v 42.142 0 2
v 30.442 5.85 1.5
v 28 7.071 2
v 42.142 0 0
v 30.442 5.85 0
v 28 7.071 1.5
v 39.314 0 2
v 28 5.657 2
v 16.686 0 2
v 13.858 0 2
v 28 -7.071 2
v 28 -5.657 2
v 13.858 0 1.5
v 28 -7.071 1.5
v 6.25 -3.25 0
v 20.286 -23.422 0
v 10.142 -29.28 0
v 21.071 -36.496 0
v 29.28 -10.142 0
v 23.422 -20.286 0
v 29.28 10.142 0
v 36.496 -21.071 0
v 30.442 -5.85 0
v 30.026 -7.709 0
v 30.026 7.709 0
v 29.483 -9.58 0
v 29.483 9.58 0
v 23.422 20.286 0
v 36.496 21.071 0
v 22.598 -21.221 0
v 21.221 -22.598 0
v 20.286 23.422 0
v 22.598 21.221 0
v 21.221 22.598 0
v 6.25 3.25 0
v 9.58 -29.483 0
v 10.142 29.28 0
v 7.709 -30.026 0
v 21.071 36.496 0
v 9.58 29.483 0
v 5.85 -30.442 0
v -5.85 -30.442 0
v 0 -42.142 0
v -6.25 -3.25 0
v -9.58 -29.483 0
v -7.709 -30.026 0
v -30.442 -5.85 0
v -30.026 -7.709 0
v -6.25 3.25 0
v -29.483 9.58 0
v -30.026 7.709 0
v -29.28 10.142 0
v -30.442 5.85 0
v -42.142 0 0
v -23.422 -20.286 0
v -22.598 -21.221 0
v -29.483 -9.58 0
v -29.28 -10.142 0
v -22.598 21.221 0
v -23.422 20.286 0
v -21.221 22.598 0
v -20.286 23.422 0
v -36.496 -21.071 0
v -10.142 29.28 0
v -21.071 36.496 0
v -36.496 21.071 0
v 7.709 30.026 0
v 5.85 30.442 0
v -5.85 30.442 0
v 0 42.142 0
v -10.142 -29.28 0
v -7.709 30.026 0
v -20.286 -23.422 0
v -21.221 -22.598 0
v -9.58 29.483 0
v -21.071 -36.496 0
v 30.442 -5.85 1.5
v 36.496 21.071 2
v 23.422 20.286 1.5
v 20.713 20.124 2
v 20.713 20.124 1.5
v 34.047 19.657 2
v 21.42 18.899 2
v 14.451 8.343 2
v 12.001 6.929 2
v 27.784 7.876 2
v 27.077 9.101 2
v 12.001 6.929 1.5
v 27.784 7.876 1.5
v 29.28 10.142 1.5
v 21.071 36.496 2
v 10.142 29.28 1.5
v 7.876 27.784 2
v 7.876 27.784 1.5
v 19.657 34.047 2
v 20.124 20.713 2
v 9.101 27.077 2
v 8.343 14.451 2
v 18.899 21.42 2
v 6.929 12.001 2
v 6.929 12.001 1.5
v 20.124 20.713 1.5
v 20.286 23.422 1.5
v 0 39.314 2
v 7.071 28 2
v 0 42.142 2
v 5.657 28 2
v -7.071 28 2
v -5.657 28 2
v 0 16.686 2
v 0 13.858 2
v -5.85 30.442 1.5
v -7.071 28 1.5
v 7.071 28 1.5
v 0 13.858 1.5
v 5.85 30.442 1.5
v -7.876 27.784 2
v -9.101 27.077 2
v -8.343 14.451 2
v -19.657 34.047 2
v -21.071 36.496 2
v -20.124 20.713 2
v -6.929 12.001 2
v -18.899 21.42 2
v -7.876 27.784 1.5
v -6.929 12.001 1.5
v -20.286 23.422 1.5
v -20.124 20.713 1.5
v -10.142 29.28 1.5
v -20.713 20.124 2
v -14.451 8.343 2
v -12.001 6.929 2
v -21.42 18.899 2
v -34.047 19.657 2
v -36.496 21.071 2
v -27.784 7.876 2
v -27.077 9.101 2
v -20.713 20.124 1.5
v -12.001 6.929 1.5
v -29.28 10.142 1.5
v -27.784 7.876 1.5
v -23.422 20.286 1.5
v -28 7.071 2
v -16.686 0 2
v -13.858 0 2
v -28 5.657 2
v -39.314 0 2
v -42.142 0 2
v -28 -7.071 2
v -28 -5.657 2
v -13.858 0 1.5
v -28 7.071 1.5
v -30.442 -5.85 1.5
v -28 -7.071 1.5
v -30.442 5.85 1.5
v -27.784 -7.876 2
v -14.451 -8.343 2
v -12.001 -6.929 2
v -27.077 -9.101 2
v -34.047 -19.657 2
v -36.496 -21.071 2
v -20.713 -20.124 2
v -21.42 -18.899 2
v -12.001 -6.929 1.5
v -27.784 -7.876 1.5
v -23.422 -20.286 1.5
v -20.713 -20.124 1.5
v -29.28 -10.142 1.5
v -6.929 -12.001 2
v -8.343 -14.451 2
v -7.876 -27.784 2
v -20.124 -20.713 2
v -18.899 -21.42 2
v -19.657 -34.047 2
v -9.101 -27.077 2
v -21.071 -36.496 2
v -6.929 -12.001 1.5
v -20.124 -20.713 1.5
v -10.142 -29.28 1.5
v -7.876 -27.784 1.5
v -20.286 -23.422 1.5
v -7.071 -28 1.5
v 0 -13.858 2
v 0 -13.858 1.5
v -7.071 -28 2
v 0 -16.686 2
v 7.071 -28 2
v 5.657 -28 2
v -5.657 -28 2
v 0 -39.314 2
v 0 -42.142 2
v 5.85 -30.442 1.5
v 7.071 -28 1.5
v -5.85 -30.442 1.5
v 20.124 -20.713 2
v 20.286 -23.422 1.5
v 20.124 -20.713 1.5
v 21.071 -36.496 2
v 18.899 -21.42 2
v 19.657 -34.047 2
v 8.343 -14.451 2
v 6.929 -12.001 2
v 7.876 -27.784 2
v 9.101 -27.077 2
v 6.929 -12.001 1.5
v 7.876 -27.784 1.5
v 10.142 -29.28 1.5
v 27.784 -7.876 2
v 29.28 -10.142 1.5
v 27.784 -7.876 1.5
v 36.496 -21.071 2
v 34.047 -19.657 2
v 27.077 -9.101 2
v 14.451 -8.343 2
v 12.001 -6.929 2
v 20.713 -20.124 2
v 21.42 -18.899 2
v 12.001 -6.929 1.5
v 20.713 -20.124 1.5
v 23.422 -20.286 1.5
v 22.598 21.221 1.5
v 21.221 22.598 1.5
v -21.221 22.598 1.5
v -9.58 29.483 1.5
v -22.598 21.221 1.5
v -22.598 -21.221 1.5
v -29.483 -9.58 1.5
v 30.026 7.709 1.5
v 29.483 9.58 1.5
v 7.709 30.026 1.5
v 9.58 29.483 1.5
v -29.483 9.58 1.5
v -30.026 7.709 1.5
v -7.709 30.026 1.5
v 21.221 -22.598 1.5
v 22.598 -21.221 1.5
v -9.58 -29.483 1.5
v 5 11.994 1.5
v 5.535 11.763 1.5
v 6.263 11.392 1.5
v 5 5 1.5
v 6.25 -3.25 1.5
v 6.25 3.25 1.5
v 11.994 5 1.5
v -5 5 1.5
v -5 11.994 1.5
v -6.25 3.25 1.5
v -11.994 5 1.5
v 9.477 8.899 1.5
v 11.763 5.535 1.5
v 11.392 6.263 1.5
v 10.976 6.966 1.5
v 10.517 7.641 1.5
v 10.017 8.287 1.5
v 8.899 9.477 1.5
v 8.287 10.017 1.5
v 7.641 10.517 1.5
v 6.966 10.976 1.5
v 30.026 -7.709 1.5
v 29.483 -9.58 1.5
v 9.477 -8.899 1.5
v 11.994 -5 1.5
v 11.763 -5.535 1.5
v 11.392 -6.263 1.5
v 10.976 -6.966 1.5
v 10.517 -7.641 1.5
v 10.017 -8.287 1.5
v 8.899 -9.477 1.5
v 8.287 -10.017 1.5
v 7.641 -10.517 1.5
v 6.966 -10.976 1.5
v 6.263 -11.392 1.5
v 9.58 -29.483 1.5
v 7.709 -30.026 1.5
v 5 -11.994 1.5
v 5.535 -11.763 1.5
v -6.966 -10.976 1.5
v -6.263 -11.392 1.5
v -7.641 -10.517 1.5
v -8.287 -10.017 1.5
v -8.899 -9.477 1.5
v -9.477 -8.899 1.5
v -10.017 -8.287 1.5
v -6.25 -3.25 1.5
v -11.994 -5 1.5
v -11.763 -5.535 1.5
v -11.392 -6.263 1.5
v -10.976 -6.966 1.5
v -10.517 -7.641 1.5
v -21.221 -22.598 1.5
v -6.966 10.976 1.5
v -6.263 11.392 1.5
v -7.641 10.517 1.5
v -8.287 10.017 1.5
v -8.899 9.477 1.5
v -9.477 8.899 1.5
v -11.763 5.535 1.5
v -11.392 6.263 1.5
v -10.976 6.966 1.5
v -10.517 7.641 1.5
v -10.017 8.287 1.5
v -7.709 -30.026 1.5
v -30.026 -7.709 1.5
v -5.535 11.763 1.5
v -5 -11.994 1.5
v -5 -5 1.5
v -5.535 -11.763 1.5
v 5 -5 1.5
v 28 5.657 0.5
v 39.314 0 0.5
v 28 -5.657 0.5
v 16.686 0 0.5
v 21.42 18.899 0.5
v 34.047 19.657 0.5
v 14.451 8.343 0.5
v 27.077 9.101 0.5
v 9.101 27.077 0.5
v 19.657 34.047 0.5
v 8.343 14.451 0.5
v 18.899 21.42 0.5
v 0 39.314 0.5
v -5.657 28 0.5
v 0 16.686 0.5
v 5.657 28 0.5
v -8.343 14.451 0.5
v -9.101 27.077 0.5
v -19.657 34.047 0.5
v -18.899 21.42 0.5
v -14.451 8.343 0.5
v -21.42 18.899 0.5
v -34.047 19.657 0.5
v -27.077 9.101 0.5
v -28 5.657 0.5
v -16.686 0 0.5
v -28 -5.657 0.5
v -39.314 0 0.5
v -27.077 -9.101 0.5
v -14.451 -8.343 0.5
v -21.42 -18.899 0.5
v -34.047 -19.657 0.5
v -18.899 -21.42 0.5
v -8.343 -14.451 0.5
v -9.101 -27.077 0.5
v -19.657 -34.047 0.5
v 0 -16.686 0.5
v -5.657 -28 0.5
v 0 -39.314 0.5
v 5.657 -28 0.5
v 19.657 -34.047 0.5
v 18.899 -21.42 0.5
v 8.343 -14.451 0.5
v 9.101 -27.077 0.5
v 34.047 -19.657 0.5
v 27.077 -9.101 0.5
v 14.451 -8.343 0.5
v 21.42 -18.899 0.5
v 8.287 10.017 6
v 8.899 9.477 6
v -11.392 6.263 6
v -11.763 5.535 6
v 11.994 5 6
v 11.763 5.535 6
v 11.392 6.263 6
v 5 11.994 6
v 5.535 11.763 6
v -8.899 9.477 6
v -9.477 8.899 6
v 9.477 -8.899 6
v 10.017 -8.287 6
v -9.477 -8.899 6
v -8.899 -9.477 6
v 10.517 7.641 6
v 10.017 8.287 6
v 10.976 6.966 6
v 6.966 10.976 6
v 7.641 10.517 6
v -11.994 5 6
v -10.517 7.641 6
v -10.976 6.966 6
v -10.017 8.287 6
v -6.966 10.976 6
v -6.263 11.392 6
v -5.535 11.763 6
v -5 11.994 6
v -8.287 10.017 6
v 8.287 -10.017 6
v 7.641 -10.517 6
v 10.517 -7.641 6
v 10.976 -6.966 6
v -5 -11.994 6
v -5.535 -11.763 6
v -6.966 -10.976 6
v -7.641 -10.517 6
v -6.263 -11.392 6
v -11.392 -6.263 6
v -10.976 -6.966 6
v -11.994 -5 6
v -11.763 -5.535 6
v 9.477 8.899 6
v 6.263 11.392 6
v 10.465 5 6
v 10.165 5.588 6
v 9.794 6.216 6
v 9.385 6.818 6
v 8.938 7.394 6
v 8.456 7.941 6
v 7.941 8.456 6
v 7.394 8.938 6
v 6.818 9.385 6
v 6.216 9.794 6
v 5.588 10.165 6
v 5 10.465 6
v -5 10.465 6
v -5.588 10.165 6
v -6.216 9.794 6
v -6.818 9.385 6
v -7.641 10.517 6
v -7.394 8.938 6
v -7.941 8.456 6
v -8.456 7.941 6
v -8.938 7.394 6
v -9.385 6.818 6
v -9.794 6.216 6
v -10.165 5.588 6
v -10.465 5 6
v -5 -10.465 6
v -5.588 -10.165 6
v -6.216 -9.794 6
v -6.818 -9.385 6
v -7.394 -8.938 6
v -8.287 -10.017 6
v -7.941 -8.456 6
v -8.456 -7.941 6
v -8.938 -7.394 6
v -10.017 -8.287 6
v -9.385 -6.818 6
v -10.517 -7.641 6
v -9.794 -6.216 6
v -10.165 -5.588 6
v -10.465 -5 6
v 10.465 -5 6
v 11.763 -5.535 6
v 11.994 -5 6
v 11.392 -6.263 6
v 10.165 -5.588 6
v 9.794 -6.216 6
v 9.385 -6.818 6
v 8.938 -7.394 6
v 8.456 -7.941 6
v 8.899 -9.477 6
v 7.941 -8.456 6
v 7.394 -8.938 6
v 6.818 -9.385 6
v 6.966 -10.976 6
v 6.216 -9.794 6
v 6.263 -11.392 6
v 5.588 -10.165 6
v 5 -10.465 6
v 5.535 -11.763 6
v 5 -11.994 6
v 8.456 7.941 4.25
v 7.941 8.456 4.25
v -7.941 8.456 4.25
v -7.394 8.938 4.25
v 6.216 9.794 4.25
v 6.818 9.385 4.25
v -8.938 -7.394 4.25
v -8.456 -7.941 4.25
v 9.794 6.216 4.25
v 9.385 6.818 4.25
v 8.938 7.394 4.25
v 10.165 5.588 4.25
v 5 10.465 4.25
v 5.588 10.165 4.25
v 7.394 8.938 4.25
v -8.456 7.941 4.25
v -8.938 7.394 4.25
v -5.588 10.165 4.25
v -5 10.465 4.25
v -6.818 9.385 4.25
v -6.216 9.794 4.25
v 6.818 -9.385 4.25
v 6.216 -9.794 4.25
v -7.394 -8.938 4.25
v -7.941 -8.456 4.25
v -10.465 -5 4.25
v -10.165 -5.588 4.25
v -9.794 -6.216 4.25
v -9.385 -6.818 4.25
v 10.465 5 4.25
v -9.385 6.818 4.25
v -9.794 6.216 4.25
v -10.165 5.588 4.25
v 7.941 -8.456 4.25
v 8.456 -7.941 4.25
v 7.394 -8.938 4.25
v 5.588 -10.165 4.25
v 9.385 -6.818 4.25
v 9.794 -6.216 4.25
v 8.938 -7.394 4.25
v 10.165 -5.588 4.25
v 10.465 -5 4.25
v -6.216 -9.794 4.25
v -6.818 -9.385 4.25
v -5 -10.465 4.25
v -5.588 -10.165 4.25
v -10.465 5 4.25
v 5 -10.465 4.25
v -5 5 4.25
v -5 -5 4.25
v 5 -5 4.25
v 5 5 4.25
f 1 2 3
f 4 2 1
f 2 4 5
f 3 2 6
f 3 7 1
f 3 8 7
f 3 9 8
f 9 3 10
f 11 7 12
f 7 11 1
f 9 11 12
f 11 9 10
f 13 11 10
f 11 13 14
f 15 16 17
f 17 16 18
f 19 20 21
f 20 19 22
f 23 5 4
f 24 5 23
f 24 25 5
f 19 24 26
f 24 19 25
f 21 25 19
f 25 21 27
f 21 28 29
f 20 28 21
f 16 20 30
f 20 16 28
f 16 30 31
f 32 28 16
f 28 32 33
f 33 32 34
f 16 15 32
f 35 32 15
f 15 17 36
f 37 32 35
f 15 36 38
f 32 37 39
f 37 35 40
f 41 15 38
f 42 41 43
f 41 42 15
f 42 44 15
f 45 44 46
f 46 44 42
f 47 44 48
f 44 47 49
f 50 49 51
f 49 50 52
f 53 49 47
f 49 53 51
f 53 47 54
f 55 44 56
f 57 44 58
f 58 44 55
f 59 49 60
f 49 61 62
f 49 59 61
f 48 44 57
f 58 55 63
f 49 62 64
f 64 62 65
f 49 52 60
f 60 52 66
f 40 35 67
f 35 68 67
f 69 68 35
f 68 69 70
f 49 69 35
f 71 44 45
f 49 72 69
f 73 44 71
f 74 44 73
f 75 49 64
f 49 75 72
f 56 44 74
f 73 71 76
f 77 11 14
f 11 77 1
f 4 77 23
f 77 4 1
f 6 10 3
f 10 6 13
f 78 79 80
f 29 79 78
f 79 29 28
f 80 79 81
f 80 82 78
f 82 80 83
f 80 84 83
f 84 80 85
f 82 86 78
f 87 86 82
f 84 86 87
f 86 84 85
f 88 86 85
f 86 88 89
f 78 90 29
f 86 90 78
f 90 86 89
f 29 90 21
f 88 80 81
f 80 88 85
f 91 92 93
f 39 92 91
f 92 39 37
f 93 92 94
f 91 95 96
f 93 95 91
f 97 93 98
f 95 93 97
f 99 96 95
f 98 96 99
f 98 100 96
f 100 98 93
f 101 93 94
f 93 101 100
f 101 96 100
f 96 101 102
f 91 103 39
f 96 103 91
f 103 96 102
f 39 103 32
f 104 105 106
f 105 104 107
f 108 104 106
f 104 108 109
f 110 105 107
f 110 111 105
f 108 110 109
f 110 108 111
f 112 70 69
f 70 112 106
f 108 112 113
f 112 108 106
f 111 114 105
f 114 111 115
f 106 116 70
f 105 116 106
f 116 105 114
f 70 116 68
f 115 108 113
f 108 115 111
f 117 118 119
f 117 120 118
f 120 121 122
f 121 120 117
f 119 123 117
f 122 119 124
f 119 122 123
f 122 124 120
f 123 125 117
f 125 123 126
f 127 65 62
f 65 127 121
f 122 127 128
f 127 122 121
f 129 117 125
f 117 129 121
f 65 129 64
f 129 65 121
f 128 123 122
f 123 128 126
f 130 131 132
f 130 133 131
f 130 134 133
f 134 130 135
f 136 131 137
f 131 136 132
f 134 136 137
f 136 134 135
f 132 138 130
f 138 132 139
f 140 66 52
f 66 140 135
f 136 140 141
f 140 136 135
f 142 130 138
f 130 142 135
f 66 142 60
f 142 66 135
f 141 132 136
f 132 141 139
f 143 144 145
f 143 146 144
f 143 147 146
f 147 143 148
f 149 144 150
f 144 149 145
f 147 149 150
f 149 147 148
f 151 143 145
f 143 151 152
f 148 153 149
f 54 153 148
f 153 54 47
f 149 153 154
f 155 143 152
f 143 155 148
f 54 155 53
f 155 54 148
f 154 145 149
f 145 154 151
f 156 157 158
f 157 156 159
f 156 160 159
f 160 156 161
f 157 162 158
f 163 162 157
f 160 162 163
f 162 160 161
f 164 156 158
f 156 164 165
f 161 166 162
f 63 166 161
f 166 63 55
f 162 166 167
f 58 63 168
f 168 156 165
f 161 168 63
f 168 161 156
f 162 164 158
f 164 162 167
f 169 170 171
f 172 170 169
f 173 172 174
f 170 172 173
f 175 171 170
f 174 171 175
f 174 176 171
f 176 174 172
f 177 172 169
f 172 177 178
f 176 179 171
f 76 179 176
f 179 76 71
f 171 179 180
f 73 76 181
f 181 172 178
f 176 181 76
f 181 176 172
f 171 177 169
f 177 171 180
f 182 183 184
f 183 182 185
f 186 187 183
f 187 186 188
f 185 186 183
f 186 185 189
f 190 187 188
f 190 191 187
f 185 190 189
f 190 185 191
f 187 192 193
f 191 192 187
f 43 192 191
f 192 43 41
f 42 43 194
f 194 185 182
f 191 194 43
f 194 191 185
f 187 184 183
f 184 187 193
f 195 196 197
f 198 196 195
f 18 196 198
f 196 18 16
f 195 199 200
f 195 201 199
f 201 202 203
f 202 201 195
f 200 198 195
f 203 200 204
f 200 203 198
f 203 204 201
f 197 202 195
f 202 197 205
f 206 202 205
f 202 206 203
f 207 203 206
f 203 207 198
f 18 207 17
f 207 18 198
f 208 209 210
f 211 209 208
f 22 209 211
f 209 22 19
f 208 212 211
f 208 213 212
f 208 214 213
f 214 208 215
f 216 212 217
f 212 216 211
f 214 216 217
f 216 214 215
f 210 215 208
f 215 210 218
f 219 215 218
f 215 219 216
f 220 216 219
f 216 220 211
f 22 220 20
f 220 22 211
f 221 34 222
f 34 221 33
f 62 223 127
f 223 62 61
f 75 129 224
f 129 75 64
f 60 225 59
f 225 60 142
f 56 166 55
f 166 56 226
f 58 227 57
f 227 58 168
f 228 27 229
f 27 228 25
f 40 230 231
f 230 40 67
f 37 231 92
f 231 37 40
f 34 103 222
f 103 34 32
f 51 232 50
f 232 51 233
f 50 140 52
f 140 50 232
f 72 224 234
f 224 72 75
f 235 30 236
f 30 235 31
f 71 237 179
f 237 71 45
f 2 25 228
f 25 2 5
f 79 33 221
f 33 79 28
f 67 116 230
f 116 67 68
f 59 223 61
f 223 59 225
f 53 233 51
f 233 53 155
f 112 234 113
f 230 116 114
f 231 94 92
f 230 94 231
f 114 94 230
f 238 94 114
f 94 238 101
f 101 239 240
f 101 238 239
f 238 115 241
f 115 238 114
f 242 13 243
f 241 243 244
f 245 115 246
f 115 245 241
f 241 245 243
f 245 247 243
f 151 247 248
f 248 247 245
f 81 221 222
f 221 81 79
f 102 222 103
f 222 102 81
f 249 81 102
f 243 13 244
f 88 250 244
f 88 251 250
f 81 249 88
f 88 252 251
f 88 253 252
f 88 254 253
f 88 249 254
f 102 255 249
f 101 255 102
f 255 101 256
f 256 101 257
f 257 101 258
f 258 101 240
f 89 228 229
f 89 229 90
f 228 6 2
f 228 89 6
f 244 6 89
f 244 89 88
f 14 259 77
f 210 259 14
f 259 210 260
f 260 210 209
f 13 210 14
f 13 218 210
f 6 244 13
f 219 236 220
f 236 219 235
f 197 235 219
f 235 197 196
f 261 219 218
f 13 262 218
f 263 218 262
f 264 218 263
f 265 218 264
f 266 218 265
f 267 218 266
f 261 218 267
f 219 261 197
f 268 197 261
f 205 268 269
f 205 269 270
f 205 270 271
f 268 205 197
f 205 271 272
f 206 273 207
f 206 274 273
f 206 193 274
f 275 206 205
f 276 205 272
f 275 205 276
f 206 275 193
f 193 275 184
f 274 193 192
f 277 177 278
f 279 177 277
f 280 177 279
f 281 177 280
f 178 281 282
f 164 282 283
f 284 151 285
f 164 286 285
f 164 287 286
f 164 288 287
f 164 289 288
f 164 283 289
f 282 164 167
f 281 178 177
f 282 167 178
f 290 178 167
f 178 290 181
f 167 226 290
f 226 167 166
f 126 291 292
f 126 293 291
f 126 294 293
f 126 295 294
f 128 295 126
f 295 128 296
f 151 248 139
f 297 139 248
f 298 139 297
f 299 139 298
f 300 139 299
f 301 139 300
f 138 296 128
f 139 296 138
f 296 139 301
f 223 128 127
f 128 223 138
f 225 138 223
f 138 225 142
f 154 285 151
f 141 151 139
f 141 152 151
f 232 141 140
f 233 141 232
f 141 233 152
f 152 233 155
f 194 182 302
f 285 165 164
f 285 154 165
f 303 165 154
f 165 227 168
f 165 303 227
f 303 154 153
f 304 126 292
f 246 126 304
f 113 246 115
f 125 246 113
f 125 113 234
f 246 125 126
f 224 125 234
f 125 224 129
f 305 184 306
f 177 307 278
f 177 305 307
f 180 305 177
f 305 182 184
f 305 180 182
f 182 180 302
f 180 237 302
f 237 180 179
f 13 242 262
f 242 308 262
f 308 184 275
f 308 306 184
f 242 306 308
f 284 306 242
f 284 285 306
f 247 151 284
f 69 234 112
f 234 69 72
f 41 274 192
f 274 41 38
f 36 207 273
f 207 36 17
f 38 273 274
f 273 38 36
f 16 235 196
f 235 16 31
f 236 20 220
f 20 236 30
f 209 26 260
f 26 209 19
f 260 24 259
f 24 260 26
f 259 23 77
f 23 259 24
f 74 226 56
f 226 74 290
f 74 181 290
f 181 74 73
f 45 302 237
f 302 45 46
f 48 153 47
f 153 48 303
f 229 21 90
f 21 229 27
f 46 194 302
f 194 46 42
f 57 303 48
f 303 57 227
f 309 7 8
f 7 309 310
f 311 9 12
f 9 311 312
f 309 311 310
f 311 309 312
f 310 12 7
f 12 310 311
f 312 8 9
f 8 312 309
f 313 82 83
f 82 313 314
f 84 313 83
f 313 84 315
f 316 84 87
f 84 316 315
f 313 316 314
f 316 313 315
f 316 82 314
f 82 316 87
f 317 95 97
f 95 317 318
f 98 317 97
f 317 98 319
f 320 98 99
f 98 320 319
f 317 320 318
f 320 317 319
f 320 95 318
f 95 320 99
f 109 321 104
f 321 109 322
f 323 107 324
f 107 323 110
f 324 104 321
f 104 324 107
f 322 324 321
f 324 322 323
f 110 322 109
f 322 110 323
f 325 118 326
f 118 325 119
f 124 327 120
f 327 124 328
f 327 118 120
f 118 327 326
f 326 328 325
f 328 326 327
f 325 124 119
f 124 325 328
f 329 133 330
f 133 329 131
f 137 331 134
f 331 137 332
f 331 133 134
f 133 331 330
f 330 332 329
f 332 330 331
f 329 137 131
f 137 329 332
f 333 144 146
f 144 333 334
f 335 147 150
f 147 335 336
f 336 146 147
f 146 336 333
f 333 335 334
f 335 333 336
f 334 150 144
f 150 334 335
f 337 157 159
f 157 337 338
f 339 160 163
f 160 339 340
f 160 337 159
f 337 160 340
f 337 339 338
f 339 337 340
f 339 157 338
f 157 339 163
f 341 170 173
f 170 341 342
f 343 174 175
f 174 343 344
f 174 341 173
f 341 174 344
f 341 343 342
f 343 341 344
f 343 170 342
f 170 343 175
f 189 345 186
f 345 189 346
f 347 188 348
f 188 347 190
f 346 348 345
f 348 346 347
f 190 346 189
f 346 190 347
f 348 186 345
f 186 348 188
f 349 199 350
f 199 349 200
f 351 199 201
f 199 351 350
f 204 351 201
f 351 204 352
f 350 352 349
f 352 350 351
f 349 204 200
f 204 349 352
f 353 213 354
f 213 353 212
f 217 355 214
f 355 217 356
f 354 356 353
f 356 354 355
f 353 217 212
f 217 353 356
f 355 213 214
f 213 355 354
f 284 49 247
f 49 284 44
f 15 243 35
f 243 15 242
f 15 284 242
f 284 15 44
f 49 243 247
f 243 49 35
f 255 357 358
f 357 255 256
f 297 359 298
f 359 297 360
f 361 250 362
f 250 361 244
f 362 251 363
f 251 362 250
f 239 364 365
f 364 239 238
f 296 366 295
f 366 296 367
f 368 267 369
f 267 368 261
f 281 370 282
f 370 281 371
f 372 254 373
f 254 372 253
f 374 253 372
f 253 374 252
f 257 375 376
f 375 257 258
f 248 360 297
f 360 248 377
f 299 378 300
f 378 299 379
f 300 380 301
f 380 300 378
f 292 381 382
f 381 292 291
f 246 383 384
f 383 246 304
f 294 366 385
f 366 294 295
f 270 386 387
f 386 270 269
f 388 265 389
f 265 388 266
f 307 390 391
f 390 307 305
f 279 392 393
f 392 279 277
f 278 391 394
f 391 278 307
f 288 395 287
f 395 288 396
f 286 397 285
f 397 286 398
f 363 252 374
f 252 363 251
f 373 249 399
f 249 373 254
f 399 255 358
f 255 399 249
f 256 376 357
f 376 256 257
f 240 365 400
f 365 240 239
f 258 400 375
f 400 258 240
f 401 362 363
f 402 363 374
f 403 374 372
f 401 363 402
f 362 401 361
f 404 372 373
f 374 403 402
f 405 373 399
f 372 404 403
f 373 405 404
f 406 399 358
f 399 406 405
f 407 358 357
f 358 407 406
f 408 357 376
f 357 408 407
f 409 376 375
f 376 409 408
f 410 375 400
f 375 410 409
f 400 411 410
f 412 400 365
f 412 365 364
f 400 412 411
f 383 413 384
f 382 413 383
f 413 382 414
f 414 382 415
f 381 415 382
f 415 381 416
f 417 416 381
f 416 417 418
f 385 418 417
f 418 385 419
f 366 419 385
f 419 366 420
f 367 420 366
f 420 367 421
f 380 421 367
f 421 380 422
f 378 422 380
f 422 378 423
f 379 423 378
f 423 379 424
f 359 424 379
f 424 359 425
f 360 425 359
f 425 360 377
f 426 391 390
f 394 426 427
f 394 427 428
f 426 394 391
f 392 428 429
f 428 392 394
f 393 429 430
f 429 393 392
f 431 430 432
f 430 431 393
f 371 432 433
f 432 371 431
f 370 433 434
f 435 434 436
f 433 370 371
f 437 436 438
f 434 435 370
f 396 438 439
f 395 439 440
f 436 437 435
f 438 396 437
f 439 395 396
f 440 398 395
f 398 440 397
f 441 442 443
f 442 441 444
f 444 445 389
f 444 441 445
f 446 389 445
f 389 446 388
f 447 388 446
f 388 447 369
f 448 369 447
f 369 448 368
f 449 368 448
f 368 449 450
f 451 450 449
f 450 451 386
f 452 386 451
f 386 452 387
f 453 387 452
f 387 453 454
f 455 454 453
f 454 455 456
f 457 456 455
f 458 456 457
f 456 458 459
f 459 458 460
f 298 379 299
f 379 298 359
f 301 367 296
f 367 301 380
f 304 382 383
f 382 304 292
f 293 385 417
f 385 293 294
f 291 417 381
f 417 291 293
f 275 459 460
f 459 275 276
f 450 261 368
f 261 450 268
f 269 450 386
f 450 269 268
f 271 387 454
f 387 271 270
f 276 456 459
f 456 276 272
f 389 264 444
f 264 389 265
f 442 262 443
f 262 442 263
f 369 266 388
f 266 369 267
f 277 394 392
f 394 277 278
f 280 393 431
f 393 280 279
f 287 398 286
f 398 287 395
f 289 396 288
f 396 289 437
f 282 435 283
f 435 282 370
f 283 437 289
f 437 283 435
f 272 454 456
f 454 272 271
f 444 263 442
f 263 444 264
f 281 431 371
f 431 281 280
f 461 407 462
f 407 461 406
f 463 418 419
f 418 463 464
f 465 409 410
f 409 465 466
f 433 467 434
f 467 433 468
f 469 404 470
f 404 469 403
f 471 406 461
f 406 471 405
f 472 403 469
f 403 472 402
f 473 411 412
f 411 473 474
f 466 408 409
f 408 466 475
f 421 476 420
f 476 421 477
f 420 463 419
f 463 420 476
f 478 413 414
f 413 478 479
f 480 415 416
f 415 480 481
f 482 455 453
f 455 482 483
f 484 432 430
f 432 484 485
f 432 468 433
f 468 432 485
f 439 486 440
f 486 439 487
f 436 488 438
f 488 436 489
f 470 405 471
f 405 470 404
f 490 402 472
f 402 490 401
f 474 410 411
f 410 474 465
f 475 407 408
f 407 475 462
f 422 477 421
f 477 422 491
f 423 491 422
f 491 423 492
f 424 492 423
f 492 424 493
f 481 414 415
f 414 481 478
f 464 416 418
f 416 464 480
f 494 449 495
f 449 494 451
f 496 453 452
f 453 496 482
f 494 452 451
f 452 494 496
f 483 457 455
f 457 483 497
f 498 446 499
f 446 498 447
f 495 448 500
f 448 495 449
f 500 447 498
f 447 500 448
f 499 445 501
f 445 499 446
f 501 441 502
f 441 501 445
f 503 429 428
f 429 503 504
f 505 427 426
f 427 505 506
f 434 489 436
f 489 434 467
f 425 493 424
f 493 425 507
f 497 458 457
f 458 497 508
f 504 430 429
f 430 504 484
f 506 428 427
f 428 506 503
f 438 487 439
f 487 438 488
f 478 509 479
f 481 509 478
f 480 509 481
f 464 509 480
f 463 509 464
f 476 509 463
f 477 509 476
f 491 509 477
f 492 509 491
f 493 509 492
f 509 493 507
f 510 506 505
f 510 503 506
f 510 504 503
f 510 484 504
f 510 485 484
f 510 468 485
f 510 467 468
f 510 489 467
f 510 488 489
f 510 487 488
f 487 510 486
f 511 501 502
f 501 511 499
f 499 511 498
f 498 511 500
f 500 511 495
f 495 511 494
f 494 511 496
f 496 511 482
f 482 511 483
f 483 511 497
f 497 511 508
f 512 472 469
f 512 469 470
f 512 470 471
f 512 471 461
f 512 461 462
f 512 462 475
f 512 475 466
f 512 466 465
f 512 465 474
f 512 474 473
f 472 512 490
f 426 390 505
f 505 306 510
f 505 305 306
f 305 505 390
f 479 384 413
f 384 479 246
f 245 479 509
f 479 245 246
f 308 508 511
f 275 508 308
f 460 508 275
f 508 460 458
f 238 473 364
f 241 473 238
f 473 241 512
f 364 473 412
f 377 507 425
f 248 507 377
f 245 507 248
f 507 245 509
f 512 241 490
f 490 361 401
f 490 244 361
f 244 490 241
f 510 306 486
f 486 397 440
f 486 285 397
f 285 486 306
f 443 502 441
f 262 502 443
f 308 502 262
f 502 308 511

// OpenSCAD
$fn = 100;

// flower
difference() {
    union() { // flower
        for (rot = [0 : 30 : 360]) {
            rotate([0, 0, rot]) {
                translate([28, 0, 1])
                scale([2, 1, 1])
                rotate([0, 0, 45])     
                    cube([10, 10, 2], center=true);
            }
        }
        
        cylinder(r=31, h=1.5);
    }
    
    translate([0, 0, 1]) // depressions
    for (rot = [0 : 30 : 360]) {
        rotate([0, 0, rot]) {
            translate([28, 0, 1])
            scale([2, 1, 1])
            rotate([0, 0, 45])     
                cube([8, 8, 3], center=true);
        }
    }
    
    translate([0, 0, -10])
        cube([12.5, 6.5, 200], center=true); // flower stem connector    
}


// neopixel holder
difference() {
    union() {
        difference() {
            cylinder(r=26/2,h=6);    
            cylinder(r=23.2/2,h=10);
        }
        
        cylinder(r=23.3/2, h=4.25);
    }
    
    translate([-5, -25, -0.1])
        cube([10, 50, 10]);    

    rotate([0, 0, 90])
    translate([-5, -25, -0.1])
        cube([10, 50, 10]);
}
